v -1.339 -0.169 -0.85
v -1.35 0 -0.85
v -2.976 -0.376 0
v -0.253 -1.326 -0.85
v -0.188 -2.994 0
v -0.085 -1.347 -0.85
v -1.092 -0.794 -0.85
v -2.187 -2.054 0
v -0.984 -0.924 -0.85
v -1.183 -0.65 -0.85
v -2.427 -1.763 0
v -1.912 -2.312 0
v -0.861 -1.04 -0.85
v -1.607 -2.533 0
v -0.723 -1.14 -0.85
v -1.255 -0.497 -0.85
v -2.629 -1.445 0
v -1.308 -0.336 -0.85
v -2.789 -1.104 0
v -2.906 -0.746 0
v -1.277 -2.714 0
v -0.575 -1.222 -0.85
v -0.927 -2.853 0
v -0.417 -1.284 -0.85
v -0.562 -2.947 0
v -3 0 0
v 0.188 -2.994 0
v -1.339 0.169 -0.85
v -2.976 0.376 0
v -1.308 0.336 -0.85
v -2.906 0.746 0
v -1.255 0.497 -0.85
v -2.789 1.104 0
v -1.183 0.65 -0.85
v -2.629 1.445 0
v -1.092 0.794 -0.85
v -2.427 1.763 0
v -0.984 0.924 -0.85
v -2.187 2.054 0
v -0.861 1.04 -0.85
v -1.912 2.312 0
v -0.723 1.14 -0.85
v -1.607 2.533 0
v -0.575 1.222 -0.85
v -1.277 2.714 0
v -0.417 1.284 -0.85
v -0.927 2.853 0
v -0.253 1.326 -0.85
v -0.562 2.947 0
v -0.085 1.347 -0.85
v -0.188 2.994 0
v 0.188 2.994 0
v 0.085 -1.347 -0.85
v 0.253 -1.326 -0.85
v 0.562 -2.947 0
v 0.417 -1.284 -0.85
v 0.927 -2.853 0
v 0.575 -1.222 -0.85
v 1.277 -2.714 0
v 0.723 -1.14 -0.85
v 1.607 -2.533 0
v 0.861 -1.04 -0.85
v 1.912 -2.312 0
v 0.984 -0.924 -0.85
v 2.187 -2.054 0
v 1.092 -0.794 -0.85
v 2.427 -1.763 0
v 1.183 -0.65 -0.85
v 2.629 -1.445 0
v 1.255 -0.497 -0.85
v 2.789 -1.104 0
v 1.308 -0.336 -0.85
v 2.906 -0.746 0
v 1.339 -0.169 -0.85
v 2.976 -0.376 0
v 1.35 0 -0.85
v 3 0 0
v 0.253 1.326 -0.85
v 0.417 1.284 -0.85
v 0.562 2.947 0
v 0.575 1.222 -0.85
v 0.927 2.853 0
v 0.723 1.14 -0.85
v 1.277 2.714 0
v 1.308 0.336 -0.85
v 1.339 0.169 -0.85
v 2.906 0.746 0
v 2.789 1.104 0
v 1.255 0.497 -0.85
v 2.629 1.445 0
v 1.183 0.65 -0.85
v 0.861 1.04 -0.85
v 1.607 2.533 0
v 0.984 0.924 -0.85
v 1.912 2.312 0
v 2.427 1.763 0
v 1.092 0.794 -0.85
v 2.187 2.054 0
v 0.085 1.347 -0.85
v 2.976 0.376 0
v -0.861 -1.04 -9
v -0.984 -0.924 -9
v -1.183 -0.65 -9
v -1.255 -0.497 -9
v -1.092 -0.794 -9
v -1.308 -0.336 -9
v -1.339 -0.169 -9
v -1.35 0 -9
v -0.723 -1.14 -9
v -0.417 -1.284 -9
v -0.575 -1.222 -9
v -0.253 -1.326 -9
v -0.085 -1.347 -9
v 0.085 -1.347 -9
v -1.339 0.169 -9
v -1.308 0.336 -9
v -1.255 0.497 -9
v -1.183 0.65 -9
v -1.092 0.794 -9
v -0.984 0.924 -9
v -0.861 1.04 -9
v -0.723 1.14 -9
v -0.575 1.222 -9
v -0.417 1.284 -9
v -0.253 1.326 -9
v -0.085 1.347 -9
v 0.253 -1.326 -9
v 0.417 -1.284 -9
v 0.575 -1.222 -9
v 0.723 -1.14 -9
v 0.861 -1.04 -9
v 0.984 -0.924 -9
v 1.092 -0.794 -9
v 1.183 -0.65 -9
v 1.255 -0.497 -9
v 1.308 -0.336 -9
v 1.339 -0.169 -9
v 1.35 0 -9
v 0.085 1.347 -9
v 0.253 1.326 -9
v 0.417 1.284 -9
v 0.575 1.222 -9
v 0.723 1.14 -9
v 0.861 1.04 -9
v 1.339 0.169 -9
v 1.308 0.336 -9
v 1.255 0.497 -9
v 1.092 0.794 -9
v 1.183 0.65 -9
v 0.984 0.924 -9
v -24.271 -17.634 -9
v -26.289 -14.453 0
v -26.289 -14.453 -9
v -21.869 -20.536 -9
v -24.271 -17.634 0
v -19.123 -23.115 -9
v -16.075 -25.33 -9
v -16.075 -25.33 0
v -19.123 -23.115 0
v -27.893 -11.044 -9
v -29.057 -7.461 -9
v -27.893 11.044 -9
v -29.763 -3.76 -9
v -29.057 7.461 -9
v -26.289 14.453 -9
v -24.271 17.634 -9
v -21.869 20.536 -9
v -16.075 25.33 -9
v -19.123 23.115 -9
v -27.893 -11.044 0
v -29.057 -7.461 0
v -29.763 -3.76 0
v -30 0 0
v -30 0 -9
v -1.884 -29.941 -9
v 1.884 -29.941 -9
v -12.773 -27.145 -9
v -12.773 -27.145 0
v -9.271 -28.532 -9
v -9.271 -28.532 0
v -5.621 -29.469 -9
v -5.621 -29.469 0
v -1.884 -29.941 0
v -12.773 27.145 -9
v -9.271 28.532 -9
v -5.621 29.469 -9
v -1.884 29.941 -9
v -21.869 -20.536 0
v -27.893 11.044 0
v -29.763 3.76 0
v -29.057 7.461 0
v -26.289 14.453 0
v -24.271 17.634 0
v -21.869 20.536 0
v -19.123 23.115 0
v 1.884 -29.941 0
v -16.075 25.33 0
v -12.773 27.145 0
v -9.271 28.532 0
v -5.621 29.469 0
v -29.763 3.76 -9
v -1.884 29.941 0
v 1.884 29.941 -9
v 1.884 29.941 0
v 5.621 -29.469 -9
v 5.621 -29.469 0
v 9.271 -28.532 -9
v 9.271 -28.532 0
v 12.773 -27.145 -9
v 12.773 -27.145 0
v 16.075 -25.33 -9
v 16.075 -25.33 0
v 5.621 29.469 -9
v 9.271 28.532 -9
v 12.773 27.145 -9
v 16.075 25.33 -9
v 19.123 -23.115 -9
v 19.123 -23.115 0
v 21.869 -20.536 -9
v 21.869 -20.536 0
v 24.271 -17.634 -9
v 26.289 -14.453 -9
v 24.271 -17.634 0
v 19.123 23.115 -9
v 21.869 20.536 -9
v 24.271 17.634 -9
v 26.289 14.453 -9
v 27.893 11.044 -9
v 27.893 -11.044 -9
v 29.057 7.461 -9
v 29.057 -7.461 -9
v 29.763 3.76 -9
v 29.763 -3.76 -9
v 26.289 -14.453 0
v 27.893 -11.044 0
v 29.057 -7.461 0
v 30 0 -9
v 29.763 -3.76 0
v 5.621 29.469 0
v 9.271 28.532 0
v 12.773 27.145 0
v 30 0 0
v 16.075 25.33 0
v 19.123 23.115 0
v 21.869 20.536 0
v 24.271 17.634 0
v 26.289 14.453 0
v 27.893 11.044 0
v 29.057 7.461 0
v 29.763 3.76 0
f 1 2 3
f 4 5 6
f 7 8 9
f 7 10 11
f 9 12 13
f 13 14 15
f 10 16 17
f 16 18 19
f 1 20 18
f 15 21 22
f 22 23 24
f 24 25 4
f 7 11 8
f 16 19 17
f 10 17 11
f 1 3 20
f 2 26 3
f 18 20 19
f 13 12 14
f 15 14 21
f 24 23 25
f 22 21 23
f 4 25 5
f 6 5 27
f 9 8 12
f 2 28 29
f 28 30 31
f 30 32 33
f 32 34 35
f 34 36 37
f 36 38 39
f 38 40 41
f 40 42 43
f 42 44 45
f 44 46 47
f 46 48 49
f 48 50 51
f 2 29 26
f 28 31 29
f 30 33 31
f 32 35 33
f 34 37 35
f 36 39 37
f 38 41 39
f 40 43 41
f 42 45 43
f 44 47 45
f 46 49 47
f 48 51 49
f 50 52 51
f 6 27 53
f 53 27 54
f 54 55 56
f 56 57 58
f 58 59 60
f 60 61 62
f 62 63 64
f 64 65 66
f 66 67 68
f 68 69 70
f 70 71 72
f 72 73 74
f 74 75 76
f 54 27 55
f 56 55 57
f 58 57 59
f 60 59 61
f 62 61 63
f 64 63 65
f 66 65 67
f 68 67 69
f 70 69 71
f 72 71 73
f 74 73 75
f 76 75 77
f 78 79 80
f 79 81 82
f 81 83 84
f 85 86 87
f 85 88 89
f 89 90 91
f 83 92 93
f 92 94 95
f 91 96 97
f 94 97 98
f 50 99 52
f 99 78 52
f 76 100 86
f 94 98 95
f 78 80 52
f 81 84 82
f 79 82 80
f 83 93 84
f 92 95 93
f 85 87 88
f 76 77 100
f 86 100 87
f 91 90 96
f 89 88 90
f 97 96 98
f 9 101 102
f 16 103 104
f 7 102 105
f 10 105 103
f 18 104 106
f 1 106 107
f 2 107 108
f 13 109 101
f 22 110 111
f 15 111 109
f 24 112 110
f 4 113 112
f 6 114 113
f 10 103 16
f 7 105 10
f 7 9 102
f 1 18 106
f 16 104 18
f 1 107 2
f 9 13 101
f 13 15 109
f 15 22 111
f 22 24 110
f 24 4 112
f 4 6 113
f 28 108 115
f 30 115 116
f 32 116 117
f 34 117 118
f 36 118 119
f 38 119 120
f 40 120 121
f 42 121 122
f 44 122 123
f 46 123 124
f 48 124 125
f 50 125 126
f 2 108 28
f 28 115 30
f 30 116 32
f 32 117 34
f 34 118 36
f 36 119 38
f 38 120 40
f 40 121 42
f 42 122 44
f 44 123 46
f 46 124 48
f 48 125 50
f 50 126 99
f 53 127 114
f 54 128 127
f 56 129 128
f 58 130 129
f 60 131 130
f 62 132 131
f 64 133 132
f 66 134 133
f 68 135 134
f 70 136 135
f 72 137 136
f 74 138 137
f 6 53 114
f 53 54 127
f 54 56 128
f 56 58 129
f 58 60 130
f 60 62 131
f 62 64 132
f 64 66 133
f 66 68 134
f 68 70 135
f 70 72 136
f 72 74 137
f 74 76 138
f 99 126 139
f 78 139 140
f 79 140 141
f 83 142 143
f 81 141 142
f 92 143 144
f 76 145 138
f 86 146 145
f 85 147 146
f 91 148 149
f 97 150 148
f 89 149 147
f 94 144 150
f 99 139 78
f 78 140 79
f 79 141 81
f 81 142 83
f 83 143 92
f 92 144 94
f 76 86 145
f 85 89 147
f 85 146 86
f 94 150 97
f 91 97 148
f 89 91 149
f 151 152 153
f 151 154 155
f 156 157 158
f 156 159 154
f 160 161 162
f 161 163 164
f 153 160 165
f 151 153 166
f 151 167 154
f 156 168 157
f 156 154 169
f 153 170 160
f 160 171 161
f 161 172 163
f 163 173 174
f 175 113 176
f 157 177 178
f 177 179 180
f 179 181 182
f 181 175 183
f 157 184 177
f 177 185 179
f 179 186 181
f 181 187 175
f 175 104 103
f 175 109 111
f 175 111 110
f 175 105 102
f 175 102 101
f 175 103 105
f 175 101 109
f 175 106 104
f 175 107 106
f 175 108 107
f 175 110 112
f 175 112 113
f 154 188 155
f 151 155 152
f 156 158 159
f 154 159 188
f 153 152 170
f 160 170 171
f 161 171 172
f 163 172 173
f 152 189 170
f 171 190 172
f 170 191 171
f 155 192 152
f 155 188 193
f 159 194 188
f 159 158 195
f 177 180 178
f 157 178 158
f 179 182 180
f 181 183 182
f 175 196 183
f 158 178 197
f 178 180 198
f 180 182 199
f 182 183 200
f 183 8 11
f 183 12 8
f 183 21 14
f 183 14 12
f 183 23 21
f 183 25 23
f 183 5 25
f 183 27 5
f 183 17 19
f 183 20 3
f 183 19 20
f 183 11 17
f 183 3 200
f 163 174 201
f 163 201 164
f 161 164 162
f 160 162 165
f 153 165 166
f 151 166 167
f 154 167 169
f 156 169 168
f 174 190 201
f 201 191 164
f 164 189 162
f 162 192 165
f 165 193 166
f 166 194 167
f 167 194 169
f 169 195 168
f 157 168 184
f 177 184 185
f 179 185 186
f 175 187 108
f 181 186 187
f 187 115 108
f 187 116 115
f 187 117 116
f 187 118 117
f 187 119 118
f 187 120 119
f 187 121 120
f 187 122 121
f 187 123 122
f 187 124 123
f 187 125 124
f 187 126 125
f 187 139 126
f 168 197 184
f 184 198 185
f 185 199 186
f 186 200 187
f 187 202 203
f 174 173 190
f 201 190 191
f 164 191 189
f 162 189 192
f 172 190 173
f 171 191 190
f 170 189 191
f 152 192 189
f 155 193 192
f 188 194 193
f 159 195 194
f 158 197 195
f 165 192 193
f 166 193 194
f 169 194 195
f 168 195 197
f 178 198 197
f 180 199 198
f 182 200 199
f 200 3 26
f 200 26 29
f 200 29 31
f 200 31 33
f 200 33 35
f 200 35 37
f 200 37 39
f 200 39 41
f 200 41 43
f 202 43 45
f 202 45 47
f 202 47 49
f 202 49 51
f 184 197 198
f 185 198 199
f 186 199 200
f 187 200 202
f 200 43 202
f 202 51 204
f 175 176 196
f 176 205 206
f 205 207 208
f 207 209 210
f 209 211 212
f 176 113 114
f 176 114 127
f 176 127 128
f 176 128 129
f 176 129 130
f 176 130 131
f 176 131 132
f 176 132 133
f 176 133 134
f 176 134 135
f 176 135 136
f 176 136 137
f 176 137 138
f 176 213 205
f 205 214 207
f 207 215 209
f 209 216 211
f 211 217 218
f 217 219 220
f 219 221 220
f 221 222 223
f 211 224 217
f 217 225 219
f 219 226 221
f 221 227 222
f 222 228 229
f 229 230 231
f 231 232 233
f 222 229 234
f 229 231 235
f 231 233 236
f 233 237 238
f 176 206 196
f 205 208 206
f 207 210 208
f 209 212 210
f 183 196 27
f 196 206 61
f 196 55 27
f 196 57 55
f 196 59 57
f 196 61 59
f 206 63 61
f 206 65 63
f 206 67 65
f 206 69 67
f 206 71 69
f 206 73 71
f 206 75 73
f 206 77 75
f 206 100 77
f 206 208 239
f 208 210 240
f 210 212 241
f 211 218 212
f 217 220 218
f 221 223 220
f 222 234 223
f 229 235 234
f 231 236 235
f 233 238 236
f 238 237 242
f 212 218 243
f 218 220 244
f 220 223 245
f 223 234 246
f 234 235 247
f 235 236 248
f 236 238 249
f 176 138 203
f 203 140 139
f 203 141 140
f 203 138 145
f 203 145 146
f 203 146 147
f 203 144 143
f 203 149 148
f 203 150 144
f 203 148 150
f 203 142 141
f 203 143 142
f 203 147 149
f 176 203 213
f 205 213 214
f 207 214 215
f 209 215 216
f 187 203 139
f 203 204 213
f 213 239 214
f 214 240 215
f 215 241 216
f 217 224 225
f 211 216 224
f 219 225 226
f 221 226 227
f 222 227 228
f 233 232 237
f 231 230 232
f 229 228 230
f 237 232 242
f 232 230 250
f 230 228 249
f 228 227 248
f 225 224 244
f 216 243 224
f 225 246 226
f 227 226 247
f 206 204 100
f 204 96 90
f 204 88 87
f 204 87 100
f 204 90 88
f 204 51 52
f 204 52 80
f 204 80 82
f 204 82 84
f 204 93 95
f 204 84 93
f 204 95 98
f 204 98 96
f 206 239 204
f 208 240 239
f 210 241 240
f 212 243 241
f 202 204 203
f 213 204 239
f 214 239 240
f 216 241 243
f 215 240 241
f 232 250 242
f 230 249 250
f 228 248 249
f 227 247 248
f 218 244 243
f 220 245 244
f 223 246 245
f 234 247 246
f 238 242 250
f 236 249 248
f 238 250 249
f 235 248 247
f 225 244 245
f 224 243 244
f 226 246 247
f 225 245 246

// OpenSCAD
$fn = 50;


difference() {
	union() {
		translate(v = [0, 0, -9.0000000000]) {
			cylinder(h = 9, r = 30.0000000000);
		}
	}
	union() {
		translate(v = [0, 0, 0]) {
			rotate(a = [0, 0, 0]) {
				difference() {
					union() {
						translate(v = [0, 0, -12.0000000000]) {
							cylinder(h = 12, r = 1.0000000000);
						}
						translate(v = [0, 0, -0.8500000000]) {
							cylinder(h = 0.8500000000, r1 = 1.3500000000, r2 = 3.0000000000);
						}
						translate(v = [0, 0, -12.0000000000]) {
							cylinder(h = 12, r = 1.3500000000);
						}
						translate(v = [0, 0, -12.0000000000]) {
							cylinder(h = 12, r = 1.0000000000);
						}
					}
					union();
				}
			}
		}
	}
}
